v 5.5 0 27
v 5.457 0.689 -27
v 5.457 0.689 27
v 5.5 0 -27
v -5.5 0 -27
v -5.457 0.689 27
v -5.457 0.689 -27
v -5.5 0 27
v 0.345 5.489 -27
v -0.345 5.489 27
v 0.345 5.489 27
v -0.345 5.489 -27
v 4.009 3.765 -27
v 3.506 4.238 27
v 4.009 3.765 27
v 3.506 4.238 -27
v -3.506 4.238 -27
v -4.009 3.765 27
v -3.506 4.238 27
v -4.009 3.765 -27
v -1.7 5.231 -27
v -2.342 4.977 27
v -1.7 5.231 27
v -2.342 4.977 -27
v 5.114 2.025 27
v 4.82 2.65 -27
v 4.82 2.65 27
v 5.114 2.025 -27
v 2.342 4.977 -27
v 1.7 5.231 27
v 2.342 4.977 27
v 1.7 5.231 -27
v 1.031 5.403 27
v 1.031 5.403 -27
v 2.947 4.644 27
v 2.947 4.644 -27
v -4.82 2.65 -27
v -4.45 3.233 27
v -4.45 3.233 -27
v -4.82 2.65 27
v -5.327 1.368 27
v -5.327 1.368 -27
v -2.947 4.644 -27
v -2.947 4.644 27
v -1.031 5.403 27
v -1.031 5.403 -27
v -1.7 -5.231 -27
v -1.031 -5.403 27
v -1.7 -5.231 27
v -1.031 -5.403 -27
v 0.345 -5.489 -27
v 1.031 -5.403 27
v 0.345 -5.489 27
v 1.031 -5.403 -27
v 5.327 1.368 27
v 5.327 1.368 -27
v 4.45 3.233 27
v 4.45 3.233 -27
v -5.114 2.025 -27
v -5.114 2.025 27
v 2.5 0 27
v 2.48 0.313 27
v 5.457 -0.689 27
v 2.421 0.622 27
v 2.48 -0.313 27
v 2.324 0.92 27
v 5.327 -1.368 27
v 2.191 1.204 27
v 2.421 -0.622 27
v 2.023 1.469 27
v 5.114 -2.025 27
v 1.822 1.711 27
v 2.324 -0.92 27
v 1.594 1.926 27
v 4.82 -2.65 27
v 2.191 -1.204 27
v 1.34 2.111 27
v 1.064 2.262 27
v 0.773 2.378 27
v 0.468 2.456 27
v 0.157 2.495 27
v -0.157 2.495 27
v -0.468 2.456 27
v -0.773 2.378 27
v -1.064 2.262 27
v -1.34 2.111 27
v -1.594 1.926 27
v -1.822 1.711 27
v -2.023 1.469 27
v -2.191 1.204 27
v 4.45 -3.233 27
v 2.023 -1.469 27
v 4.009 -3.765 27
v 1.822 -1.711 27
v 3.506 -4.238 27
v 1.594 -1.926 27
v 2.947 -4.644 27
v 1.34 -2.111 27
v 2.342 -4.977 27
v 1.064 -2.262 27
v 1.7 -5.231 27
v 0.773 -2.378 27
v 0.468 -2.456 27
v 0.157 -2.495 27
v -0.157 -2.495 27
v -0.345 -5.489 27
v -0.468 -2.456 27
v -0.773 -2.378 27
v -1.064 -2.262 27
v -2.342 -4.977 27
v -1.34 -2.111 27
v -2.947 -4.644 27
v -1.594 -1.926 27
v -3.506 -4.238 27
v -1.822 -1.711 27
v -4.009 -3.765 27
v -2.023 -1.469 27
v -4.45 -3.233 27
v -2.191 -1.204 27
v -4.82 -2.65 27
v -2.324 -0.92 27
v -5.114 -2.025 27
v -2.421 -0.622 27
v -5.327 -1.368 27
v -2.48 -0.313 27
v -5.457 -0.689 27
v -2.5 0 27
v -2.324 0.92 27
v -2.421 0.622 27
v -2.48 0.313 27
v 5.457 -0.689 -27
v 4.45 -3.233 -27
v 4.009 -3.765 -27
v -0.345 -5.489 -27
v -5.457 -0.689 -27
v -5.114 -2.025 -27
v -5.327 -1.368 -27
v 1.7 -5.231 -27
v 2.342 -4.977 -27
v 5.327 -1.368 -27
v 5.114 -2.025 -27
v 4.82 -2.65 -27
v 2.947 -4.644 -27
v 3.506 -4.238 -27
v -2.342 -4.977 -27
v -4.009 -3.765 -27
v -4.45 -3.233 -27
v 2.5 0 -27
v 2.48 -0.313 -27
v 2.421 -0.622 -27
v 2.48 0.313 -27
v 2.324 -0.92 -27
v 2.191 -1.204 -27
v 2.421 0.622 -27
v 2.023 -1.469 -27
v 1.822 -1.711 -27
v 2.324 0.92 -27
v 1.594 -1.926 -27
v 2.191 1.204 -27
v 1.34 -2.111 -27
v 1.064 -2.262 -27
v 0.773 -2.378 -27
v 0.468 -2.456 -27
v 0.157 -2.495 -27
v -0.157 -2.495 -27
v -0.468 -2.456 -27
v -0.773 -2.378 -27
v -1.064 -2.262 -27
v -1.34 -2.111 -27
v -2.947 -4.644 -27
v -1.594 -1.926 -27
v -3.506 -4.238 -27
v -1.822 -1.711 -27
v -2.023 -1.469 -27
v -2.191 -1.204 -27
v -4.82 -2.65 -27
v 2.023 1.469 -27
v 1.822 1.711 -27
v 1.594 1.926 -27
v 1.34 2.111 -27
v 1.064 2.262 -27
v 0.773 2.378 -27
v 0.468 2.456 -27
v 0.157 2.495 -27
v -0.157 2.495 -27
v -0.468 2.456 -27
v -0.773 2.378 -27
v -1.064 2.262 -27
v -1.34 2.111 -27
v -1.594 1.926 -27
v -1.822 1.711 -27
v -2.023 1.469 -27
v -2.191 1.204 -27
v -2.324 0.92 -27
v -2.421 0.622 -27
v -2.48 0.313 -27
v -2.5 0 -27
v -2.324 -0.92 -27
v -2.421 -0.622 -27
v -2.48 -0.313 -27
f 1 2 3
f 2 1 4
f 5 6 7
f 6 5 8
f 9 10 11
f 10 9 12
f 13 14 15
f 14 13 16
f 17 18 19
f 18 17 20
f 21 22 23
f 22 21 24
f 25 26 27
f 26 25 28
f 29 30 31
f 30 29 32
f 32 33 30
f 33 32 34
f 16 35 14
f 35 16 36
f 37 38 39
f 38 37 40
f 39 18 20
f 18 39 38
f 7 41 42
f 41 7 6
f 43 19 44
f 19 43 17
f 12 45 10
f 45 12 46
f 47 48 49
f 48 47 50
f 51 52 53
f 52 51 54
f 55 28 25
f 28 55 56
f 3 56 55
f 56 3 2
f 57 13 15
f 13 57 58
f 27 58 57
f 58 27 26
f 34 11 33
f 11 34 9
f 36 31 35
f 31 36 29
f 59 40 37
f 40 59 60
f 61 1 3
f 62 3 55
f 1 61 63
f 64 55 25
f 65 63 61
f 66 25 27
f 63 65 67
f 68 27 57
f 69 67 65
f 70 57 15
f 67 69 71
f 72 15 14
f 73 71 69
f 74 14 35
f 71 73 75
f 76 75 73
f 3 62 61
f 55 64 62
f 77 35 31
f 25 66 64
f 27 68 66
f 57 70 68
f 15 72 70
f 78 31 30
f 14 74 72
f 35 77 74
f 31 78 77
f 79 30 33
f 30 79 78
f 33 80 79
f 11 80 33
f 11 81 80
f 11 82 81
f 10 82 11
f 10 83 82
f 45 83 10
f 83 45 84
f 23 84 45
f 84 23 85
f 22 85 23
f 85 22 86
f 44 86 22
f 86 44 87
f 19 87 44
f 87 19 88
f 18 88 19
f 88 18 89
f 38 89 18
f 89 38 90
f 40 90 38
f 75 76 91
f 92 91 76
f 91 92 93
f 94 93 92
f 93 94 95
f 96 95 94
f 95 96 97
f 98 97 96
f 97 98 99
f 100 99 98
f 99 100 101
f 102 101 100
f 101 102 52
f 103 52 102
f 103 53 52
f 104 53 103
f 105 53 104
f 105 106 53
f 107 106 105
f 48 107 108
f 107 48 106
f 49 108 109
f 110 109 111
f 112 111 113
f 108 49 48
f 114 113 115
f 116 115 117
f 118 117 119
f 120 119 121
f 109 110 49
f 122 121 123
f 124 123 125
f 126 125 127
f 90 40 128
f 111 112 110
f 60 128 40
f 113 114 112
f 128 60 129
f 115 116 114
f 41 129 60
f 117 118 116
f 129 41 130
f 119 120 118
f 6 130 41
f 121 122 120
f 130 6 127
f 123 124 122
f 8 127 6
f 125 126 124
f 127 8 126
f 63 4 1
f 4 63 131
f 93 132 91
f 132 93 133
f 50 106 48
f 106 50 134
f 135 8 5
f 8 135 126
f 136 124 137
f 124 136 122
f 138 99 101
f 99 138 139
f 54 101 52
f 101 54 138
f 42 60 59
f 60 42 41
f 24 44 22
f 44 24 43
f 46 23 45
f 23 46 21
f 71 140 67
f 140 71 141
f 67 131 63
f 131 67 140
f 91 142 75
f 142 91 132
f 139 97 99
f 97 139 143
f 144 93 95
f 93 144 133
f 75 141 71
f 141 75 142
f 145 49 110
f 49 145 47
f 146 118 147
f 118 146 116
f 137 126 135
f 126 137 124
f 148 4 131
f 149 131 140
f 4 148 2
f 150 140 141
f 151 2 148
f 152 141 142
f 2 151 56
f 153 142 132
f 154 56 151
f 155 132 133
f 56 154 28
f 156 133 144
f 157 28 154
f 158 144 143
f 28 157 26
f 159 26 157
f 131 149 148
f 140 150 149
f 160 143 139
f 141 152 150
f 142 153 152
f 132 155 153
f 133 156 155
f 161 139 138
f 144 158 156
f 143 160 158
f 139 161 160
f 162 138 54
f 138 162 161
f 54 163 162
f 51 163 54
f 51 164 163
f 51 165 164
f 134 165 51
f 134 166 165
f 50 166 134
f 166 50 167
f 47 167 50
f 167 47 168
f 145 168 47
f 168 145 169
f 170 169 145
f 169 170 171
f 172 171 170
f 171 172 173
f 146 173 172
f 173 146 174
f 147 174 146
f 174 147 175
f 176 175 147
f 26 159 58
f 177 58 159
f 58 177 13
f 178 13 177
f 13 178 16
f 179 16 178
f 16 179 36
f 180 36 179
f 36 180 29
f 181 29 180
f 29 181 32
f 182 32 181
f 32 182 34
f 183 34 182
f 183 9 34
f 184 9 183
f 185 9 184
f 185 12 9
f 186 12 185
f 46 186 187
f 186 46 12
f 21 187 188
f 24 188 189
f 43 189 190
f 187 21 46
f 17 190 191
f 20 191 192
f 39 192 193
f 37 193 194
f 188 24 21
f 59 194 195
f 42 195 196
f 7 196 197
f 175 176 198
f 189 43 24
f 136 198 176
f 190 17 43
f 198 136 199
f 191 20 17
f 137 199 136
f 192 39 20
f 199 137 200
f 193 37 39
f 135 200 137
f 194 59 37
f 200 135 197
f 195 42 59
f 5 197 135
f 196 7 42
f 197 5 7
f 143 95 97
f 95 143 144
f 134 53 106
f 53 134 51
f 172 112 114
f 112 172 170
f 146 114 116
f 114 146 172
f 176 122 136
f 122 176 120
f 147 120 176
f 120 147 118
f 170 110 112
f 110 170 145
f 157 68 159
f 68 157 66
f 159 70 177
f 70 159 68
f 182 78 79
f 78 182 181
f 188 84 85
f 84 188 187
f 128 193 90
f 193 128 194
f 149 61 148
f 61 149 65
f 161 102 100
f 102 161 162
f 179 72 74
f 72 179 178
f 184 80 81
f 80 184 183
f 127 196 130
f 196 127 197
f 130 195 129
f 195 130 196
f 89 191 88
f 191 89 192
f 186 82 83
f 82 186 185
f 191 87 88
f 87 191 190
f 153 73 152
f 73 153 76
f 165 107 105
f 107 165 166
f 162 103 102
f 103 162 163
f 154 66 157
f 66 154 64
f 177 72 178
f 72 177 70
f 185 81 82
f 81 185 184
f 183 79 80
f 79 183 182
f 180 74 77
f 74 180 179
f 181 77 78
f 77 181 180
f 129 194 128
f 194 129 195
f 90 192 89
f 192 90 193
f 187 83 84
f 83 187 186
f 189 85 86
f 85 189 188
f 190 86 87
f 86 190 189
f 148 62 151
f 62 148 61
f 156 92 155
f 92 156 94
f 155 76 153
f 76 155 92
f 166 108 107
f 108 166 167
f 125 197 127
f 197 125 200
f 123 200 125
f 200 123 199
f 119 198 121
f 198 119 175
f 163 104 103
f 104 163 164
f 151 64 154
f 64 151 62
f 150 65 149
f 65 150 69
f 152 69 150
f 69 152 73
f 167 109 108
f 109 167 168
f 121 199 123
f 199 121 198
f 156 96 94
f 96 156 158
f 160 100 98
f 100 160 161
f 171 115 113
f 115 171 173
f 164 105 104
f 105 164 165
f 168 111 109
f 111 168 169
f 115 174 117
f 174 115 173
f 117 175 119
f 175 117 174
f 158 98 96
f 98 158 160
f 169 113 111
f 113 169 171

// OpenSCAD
$fn = 50;


difference() {
	union() {
		translate(v = [0, 0, -27.0000000000]) {
			cylinder(h = 54, r = 5.5000000000);
		}
	}
	union() {
		translate(v = [0, 0, -100.0000000000]) {
			cylinder(h = 200, r = 2.5000000000);
		}
	}
}
